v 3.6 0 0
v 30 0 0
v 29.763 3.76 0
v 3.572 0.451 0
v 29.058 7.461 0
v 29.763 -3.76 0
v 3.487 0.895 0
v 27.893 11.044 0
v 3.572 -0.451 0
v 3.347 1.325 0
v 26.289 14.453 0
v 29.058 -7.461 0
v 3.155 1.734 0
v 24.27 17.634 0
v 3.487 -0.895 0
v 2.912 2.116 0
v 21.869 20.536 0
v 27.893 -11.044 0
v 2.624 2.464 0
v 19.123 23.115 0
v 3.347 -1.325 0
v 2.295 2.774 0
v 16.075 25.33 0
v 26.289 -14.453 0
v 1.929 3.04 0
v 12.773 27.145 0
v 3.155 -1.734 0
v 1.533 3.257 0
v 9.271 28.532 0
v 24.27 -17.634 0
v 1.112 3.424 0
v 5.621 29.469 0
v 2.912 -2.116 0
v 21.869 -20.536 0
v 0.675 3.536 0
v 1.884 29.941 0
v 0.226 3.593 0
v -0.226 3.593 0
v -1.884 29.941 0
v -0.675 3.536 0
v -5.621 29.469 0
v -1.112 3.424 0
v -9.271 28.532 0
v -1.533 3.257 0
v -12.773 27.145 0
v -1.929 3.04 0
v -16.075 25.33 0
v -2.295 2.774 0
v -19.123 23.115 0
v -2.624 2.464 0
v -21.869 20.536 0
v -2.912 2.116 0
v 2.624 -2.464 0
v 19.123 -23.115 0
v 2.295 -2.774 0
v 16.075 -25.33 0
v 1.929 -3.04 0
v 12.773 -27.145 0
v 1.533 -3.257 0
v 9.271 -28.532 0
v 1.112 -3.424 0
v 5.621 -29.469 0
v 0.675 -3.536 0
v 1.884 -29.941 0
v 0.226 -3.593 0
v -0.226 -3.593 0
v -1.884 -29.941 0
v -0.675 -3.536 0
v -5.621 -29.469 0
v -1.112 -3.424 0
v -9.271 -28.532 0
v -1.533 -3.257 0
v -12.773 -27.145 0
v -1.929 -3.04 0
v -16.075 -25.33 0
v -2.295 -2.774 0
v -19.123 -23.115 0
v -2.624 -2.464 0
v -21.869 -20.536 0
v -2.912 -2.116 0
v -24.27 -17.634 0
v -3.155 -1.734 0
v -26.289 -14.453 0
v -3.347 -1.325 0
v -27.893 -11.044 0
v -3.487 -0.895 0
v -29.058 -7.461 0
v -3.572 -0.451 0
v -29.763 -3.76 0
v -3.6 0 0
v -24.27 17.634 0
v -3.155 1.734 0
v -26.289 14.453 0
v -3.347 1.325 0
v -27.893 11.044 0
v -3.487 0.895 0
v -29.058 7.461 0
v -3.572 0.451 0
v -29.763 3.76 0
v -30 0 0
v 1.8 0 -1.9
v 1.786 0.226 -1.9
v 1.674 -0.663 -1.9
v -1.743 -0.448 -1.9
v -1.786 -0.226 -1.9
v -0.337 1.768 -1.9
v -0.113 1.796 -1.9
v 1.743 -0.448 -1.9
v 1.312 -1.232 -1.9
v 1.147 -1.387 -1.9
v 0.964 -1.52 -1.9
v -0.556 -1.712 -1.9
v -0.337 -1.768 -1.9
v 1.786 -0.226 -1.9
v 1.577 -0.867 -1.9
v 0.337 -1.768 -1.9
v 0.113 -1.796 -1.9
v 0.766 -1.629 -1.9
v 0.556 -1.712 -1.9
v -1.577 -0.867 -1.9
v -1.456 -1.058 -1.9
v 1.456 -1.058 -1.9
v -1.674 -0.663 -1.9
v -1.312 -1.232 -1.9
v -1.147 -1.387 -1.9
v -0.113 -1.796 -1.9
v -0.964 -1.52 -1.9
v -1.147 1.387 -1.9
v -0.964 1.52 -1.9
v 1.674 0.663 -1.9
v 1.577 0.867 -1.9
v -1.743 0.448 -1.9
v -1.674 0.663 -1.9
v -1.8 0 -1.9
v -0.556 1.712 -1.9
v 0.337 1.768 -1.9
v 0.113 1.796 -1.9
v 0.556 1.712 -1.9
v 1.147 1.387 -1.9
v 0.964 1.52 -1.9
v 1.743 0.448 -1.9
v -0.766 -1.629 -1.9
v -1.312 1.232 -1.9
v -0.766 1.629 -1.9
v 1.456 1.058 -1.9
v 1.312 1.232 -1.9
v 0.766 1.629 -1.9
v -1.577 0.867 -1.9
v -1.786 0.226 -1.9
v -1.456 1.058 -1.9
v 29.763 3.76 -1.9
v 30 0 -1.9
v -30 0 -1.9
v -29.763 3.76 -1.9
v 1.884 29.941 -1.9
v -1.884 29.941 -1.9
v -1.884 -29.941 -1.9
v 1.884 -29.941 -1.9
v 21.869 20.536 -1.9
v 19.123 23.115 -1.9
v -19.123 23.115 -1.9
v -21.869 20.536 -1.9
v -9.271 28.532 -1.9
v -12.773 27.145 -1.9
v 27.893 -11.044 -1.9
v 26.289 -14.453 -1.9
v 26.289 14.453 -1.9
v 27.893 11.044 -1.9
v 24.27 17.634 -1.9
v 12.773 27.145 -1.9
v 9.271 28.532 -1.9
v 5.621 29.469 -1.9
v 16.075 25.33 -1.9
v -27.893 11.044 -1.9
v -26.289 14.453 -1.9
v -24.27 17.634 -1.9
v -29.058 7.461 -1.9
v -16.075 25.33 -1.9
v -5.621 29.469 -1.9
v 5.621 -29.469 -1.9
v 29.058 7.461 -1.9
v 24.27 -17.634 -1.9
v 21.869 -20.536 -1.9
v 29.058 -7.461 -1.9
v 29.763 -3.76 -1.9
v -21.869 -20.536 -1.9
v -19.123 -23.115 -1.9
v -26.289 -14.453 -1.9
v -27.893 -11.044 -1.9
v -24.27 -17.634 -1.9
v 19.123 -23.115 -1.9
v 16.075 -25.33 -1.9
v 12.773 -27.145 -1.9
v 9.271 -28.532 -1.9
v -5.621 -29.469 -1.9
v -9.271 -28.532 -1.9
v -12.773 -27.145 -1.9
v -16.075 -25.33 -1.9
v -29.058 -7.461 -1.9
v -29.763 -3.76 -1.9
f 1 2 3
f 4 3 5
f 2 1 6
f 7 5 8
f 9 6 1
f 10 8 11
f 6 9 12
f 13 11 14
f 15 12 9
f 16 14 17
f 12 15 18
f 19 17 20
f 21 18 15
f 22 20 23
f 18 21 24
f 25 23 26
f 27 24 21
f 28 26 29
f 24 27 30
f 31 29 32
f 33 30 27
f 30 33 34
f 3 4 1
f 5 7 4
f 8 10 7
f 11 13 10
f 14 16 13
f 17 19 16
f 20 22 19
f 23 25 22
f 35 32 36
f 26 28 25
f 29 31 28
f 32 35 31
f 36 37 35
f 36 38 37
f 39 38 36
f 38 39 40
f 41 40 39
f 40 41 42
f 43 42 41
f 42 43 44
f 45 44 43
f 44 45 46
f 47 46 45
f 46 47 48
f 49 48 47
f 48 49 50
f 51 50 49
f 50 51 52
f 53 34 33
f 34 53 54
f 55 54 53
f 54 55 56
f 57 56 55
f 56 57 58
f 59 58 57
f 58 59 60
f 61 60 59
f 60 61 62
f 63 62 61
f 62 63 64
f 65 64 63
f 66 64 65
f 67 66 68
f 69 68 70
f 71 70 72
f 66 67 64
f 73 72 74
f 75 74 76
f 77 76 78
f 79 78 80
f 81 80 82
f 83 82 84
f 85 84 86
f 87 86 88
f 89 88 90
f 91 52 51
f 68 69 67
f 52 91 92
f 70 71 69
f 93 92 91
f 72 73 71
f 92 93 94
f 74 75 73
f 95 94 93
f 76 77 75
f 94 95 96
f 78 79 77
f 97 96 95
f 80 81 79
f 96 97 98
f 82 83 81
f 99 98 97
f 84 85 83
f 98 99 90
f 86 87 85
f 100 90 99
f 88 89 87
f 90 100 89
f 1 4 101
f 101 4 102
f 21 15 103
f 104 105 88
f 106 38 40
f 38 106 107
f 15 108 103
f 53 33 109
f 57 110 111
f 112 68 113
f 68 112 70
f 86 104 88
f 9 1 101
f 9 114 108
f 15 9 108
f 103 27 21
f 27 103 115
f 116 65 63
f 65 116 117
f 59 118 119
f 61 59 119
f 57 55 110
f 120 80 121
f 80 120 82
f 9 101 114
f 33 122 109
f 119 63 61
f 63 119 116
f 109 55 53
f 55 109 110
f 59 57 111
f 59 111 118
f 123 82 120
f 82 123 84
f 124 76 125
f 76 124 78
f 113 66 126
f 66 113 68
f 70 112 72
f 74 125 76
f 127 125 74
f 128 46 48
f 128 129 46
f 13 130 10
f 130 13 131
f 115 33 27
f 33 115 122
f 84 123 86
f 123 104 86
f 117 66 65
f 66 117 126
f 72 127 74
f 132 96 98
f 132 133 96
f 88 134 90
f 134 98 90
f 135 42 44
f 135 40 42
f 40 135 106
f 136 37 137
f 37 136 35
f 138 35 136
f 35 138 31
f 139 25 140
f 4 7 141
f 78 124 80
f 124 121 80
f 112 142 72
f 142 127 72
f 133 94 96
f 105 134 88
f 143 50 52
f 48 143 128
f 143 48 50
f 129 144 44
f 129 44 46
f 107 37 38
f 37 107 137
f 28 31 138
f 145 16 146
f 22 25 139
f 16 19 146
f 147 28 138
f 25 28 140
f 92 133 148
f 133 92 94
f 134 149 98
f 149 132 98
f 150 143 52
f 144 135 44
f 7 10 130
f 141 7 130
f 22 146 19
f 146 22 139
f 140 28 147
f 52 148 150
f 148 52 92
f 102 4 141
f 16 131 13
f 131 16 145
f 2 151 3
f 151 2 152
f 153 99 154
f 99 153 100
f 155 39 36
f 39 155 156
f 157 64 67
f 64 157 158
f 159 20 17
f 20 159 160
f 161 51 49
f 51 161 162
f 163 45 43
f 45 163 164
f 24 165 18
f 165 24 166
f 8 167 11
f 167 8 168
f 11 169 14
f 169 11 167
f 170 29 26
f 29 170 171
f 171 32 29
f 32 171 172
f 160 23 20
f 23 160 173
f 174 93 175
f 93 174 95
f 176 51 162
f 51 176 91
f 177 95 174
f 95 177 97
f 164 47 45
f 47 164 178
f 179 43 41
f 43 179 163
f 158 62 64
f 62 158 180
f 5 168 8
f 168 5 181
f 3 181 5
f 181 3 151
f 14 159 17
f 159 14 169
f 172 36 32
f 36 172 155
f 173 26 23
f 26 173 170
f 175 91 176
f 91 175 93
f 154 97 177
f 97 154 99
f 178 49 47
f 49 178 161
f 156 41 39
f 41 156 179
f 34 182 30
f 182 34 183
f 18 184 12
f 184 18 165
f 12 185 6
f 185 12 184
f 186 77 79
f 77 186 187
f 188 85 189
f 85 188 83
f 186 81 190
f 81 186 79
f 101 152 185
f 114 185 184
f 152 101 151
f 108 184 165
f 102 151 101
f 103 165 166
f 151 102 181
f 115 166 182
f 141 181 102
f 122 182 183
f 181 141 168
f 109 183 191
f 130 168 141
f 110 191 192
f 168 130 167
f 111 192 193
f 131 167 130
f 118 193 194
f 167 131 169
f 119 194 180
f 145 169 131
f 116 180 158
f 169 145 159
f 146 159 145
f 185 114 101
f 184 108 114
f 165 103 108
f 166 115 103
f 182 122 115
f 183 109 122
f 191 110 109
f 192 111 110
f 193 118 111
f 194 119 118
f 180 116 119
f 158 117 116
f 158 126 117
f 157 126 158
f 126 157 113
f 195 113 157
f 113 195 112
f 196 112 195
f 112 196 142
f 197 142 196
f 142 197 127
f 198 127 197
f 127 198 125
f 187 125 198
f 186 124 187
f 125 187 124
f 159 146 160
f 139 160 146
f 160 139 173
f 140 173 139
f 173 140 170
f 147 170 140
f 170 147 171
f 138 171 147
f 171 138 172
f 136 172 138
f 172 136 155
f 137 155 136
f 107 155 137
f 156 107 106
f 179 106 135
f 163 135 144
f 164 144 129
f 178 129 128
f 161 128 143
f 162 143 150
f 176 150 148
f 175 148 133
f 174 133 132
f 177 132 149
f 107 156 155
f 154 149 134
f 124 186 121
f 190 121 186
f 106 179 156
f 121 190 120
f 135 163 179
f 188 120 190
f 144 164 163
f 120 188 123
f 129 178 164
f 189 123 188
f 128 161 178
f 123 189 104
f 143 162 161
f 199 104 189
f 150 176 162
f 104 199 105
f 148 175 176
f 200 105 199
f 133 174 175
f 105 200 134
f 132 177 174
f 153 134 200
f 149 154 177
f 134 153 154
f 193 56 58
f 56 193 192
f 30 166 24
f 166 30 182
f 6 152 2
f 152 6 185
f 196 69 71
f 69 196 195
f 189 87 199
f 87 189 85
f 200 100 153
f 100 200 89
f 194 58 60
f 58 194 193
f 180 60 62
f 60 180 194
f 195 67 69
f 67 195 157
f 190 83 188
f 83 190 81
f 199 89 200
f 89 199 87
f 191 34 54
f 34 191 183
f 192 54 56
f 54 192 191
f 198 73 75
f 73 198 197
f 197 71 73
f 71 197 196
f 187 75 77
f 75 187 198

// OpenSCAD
$fn = 50;


difference() {
	union() {
		translate(v = [0, 0, -1.9000000000]) {
			cylinder(h = 1.9000000000, r = 30.0000000000);
		}
	}
	union() {
		translate(v = [0, 0, 0]) {
			rotate(a = [0, 0, 0]) {
				difference() {
					union() {
						translate(v = [0, 0, -4.9000000000]) {
							cylinder(h = 4.9000000000, r = 1.5000000000);
						}
						translate(v = [0, 0, -1.9000000000]) {
							cylinder(h = 1.9000000000, r1 = 1.8000000000, r2 = 3.6000000000);
						}
						translate(v = [0, 0, -4.9000000000]) {
							cylinder(h = 4.9000000000, r = 1.8000000000);
						}
						translate(v = [0, 0, -4.9000000000]) {
							cylinder(h = 4.9000000000, r = 1.5000000000);
						}
					}
					union();
				}
			}
		}
	}
}
